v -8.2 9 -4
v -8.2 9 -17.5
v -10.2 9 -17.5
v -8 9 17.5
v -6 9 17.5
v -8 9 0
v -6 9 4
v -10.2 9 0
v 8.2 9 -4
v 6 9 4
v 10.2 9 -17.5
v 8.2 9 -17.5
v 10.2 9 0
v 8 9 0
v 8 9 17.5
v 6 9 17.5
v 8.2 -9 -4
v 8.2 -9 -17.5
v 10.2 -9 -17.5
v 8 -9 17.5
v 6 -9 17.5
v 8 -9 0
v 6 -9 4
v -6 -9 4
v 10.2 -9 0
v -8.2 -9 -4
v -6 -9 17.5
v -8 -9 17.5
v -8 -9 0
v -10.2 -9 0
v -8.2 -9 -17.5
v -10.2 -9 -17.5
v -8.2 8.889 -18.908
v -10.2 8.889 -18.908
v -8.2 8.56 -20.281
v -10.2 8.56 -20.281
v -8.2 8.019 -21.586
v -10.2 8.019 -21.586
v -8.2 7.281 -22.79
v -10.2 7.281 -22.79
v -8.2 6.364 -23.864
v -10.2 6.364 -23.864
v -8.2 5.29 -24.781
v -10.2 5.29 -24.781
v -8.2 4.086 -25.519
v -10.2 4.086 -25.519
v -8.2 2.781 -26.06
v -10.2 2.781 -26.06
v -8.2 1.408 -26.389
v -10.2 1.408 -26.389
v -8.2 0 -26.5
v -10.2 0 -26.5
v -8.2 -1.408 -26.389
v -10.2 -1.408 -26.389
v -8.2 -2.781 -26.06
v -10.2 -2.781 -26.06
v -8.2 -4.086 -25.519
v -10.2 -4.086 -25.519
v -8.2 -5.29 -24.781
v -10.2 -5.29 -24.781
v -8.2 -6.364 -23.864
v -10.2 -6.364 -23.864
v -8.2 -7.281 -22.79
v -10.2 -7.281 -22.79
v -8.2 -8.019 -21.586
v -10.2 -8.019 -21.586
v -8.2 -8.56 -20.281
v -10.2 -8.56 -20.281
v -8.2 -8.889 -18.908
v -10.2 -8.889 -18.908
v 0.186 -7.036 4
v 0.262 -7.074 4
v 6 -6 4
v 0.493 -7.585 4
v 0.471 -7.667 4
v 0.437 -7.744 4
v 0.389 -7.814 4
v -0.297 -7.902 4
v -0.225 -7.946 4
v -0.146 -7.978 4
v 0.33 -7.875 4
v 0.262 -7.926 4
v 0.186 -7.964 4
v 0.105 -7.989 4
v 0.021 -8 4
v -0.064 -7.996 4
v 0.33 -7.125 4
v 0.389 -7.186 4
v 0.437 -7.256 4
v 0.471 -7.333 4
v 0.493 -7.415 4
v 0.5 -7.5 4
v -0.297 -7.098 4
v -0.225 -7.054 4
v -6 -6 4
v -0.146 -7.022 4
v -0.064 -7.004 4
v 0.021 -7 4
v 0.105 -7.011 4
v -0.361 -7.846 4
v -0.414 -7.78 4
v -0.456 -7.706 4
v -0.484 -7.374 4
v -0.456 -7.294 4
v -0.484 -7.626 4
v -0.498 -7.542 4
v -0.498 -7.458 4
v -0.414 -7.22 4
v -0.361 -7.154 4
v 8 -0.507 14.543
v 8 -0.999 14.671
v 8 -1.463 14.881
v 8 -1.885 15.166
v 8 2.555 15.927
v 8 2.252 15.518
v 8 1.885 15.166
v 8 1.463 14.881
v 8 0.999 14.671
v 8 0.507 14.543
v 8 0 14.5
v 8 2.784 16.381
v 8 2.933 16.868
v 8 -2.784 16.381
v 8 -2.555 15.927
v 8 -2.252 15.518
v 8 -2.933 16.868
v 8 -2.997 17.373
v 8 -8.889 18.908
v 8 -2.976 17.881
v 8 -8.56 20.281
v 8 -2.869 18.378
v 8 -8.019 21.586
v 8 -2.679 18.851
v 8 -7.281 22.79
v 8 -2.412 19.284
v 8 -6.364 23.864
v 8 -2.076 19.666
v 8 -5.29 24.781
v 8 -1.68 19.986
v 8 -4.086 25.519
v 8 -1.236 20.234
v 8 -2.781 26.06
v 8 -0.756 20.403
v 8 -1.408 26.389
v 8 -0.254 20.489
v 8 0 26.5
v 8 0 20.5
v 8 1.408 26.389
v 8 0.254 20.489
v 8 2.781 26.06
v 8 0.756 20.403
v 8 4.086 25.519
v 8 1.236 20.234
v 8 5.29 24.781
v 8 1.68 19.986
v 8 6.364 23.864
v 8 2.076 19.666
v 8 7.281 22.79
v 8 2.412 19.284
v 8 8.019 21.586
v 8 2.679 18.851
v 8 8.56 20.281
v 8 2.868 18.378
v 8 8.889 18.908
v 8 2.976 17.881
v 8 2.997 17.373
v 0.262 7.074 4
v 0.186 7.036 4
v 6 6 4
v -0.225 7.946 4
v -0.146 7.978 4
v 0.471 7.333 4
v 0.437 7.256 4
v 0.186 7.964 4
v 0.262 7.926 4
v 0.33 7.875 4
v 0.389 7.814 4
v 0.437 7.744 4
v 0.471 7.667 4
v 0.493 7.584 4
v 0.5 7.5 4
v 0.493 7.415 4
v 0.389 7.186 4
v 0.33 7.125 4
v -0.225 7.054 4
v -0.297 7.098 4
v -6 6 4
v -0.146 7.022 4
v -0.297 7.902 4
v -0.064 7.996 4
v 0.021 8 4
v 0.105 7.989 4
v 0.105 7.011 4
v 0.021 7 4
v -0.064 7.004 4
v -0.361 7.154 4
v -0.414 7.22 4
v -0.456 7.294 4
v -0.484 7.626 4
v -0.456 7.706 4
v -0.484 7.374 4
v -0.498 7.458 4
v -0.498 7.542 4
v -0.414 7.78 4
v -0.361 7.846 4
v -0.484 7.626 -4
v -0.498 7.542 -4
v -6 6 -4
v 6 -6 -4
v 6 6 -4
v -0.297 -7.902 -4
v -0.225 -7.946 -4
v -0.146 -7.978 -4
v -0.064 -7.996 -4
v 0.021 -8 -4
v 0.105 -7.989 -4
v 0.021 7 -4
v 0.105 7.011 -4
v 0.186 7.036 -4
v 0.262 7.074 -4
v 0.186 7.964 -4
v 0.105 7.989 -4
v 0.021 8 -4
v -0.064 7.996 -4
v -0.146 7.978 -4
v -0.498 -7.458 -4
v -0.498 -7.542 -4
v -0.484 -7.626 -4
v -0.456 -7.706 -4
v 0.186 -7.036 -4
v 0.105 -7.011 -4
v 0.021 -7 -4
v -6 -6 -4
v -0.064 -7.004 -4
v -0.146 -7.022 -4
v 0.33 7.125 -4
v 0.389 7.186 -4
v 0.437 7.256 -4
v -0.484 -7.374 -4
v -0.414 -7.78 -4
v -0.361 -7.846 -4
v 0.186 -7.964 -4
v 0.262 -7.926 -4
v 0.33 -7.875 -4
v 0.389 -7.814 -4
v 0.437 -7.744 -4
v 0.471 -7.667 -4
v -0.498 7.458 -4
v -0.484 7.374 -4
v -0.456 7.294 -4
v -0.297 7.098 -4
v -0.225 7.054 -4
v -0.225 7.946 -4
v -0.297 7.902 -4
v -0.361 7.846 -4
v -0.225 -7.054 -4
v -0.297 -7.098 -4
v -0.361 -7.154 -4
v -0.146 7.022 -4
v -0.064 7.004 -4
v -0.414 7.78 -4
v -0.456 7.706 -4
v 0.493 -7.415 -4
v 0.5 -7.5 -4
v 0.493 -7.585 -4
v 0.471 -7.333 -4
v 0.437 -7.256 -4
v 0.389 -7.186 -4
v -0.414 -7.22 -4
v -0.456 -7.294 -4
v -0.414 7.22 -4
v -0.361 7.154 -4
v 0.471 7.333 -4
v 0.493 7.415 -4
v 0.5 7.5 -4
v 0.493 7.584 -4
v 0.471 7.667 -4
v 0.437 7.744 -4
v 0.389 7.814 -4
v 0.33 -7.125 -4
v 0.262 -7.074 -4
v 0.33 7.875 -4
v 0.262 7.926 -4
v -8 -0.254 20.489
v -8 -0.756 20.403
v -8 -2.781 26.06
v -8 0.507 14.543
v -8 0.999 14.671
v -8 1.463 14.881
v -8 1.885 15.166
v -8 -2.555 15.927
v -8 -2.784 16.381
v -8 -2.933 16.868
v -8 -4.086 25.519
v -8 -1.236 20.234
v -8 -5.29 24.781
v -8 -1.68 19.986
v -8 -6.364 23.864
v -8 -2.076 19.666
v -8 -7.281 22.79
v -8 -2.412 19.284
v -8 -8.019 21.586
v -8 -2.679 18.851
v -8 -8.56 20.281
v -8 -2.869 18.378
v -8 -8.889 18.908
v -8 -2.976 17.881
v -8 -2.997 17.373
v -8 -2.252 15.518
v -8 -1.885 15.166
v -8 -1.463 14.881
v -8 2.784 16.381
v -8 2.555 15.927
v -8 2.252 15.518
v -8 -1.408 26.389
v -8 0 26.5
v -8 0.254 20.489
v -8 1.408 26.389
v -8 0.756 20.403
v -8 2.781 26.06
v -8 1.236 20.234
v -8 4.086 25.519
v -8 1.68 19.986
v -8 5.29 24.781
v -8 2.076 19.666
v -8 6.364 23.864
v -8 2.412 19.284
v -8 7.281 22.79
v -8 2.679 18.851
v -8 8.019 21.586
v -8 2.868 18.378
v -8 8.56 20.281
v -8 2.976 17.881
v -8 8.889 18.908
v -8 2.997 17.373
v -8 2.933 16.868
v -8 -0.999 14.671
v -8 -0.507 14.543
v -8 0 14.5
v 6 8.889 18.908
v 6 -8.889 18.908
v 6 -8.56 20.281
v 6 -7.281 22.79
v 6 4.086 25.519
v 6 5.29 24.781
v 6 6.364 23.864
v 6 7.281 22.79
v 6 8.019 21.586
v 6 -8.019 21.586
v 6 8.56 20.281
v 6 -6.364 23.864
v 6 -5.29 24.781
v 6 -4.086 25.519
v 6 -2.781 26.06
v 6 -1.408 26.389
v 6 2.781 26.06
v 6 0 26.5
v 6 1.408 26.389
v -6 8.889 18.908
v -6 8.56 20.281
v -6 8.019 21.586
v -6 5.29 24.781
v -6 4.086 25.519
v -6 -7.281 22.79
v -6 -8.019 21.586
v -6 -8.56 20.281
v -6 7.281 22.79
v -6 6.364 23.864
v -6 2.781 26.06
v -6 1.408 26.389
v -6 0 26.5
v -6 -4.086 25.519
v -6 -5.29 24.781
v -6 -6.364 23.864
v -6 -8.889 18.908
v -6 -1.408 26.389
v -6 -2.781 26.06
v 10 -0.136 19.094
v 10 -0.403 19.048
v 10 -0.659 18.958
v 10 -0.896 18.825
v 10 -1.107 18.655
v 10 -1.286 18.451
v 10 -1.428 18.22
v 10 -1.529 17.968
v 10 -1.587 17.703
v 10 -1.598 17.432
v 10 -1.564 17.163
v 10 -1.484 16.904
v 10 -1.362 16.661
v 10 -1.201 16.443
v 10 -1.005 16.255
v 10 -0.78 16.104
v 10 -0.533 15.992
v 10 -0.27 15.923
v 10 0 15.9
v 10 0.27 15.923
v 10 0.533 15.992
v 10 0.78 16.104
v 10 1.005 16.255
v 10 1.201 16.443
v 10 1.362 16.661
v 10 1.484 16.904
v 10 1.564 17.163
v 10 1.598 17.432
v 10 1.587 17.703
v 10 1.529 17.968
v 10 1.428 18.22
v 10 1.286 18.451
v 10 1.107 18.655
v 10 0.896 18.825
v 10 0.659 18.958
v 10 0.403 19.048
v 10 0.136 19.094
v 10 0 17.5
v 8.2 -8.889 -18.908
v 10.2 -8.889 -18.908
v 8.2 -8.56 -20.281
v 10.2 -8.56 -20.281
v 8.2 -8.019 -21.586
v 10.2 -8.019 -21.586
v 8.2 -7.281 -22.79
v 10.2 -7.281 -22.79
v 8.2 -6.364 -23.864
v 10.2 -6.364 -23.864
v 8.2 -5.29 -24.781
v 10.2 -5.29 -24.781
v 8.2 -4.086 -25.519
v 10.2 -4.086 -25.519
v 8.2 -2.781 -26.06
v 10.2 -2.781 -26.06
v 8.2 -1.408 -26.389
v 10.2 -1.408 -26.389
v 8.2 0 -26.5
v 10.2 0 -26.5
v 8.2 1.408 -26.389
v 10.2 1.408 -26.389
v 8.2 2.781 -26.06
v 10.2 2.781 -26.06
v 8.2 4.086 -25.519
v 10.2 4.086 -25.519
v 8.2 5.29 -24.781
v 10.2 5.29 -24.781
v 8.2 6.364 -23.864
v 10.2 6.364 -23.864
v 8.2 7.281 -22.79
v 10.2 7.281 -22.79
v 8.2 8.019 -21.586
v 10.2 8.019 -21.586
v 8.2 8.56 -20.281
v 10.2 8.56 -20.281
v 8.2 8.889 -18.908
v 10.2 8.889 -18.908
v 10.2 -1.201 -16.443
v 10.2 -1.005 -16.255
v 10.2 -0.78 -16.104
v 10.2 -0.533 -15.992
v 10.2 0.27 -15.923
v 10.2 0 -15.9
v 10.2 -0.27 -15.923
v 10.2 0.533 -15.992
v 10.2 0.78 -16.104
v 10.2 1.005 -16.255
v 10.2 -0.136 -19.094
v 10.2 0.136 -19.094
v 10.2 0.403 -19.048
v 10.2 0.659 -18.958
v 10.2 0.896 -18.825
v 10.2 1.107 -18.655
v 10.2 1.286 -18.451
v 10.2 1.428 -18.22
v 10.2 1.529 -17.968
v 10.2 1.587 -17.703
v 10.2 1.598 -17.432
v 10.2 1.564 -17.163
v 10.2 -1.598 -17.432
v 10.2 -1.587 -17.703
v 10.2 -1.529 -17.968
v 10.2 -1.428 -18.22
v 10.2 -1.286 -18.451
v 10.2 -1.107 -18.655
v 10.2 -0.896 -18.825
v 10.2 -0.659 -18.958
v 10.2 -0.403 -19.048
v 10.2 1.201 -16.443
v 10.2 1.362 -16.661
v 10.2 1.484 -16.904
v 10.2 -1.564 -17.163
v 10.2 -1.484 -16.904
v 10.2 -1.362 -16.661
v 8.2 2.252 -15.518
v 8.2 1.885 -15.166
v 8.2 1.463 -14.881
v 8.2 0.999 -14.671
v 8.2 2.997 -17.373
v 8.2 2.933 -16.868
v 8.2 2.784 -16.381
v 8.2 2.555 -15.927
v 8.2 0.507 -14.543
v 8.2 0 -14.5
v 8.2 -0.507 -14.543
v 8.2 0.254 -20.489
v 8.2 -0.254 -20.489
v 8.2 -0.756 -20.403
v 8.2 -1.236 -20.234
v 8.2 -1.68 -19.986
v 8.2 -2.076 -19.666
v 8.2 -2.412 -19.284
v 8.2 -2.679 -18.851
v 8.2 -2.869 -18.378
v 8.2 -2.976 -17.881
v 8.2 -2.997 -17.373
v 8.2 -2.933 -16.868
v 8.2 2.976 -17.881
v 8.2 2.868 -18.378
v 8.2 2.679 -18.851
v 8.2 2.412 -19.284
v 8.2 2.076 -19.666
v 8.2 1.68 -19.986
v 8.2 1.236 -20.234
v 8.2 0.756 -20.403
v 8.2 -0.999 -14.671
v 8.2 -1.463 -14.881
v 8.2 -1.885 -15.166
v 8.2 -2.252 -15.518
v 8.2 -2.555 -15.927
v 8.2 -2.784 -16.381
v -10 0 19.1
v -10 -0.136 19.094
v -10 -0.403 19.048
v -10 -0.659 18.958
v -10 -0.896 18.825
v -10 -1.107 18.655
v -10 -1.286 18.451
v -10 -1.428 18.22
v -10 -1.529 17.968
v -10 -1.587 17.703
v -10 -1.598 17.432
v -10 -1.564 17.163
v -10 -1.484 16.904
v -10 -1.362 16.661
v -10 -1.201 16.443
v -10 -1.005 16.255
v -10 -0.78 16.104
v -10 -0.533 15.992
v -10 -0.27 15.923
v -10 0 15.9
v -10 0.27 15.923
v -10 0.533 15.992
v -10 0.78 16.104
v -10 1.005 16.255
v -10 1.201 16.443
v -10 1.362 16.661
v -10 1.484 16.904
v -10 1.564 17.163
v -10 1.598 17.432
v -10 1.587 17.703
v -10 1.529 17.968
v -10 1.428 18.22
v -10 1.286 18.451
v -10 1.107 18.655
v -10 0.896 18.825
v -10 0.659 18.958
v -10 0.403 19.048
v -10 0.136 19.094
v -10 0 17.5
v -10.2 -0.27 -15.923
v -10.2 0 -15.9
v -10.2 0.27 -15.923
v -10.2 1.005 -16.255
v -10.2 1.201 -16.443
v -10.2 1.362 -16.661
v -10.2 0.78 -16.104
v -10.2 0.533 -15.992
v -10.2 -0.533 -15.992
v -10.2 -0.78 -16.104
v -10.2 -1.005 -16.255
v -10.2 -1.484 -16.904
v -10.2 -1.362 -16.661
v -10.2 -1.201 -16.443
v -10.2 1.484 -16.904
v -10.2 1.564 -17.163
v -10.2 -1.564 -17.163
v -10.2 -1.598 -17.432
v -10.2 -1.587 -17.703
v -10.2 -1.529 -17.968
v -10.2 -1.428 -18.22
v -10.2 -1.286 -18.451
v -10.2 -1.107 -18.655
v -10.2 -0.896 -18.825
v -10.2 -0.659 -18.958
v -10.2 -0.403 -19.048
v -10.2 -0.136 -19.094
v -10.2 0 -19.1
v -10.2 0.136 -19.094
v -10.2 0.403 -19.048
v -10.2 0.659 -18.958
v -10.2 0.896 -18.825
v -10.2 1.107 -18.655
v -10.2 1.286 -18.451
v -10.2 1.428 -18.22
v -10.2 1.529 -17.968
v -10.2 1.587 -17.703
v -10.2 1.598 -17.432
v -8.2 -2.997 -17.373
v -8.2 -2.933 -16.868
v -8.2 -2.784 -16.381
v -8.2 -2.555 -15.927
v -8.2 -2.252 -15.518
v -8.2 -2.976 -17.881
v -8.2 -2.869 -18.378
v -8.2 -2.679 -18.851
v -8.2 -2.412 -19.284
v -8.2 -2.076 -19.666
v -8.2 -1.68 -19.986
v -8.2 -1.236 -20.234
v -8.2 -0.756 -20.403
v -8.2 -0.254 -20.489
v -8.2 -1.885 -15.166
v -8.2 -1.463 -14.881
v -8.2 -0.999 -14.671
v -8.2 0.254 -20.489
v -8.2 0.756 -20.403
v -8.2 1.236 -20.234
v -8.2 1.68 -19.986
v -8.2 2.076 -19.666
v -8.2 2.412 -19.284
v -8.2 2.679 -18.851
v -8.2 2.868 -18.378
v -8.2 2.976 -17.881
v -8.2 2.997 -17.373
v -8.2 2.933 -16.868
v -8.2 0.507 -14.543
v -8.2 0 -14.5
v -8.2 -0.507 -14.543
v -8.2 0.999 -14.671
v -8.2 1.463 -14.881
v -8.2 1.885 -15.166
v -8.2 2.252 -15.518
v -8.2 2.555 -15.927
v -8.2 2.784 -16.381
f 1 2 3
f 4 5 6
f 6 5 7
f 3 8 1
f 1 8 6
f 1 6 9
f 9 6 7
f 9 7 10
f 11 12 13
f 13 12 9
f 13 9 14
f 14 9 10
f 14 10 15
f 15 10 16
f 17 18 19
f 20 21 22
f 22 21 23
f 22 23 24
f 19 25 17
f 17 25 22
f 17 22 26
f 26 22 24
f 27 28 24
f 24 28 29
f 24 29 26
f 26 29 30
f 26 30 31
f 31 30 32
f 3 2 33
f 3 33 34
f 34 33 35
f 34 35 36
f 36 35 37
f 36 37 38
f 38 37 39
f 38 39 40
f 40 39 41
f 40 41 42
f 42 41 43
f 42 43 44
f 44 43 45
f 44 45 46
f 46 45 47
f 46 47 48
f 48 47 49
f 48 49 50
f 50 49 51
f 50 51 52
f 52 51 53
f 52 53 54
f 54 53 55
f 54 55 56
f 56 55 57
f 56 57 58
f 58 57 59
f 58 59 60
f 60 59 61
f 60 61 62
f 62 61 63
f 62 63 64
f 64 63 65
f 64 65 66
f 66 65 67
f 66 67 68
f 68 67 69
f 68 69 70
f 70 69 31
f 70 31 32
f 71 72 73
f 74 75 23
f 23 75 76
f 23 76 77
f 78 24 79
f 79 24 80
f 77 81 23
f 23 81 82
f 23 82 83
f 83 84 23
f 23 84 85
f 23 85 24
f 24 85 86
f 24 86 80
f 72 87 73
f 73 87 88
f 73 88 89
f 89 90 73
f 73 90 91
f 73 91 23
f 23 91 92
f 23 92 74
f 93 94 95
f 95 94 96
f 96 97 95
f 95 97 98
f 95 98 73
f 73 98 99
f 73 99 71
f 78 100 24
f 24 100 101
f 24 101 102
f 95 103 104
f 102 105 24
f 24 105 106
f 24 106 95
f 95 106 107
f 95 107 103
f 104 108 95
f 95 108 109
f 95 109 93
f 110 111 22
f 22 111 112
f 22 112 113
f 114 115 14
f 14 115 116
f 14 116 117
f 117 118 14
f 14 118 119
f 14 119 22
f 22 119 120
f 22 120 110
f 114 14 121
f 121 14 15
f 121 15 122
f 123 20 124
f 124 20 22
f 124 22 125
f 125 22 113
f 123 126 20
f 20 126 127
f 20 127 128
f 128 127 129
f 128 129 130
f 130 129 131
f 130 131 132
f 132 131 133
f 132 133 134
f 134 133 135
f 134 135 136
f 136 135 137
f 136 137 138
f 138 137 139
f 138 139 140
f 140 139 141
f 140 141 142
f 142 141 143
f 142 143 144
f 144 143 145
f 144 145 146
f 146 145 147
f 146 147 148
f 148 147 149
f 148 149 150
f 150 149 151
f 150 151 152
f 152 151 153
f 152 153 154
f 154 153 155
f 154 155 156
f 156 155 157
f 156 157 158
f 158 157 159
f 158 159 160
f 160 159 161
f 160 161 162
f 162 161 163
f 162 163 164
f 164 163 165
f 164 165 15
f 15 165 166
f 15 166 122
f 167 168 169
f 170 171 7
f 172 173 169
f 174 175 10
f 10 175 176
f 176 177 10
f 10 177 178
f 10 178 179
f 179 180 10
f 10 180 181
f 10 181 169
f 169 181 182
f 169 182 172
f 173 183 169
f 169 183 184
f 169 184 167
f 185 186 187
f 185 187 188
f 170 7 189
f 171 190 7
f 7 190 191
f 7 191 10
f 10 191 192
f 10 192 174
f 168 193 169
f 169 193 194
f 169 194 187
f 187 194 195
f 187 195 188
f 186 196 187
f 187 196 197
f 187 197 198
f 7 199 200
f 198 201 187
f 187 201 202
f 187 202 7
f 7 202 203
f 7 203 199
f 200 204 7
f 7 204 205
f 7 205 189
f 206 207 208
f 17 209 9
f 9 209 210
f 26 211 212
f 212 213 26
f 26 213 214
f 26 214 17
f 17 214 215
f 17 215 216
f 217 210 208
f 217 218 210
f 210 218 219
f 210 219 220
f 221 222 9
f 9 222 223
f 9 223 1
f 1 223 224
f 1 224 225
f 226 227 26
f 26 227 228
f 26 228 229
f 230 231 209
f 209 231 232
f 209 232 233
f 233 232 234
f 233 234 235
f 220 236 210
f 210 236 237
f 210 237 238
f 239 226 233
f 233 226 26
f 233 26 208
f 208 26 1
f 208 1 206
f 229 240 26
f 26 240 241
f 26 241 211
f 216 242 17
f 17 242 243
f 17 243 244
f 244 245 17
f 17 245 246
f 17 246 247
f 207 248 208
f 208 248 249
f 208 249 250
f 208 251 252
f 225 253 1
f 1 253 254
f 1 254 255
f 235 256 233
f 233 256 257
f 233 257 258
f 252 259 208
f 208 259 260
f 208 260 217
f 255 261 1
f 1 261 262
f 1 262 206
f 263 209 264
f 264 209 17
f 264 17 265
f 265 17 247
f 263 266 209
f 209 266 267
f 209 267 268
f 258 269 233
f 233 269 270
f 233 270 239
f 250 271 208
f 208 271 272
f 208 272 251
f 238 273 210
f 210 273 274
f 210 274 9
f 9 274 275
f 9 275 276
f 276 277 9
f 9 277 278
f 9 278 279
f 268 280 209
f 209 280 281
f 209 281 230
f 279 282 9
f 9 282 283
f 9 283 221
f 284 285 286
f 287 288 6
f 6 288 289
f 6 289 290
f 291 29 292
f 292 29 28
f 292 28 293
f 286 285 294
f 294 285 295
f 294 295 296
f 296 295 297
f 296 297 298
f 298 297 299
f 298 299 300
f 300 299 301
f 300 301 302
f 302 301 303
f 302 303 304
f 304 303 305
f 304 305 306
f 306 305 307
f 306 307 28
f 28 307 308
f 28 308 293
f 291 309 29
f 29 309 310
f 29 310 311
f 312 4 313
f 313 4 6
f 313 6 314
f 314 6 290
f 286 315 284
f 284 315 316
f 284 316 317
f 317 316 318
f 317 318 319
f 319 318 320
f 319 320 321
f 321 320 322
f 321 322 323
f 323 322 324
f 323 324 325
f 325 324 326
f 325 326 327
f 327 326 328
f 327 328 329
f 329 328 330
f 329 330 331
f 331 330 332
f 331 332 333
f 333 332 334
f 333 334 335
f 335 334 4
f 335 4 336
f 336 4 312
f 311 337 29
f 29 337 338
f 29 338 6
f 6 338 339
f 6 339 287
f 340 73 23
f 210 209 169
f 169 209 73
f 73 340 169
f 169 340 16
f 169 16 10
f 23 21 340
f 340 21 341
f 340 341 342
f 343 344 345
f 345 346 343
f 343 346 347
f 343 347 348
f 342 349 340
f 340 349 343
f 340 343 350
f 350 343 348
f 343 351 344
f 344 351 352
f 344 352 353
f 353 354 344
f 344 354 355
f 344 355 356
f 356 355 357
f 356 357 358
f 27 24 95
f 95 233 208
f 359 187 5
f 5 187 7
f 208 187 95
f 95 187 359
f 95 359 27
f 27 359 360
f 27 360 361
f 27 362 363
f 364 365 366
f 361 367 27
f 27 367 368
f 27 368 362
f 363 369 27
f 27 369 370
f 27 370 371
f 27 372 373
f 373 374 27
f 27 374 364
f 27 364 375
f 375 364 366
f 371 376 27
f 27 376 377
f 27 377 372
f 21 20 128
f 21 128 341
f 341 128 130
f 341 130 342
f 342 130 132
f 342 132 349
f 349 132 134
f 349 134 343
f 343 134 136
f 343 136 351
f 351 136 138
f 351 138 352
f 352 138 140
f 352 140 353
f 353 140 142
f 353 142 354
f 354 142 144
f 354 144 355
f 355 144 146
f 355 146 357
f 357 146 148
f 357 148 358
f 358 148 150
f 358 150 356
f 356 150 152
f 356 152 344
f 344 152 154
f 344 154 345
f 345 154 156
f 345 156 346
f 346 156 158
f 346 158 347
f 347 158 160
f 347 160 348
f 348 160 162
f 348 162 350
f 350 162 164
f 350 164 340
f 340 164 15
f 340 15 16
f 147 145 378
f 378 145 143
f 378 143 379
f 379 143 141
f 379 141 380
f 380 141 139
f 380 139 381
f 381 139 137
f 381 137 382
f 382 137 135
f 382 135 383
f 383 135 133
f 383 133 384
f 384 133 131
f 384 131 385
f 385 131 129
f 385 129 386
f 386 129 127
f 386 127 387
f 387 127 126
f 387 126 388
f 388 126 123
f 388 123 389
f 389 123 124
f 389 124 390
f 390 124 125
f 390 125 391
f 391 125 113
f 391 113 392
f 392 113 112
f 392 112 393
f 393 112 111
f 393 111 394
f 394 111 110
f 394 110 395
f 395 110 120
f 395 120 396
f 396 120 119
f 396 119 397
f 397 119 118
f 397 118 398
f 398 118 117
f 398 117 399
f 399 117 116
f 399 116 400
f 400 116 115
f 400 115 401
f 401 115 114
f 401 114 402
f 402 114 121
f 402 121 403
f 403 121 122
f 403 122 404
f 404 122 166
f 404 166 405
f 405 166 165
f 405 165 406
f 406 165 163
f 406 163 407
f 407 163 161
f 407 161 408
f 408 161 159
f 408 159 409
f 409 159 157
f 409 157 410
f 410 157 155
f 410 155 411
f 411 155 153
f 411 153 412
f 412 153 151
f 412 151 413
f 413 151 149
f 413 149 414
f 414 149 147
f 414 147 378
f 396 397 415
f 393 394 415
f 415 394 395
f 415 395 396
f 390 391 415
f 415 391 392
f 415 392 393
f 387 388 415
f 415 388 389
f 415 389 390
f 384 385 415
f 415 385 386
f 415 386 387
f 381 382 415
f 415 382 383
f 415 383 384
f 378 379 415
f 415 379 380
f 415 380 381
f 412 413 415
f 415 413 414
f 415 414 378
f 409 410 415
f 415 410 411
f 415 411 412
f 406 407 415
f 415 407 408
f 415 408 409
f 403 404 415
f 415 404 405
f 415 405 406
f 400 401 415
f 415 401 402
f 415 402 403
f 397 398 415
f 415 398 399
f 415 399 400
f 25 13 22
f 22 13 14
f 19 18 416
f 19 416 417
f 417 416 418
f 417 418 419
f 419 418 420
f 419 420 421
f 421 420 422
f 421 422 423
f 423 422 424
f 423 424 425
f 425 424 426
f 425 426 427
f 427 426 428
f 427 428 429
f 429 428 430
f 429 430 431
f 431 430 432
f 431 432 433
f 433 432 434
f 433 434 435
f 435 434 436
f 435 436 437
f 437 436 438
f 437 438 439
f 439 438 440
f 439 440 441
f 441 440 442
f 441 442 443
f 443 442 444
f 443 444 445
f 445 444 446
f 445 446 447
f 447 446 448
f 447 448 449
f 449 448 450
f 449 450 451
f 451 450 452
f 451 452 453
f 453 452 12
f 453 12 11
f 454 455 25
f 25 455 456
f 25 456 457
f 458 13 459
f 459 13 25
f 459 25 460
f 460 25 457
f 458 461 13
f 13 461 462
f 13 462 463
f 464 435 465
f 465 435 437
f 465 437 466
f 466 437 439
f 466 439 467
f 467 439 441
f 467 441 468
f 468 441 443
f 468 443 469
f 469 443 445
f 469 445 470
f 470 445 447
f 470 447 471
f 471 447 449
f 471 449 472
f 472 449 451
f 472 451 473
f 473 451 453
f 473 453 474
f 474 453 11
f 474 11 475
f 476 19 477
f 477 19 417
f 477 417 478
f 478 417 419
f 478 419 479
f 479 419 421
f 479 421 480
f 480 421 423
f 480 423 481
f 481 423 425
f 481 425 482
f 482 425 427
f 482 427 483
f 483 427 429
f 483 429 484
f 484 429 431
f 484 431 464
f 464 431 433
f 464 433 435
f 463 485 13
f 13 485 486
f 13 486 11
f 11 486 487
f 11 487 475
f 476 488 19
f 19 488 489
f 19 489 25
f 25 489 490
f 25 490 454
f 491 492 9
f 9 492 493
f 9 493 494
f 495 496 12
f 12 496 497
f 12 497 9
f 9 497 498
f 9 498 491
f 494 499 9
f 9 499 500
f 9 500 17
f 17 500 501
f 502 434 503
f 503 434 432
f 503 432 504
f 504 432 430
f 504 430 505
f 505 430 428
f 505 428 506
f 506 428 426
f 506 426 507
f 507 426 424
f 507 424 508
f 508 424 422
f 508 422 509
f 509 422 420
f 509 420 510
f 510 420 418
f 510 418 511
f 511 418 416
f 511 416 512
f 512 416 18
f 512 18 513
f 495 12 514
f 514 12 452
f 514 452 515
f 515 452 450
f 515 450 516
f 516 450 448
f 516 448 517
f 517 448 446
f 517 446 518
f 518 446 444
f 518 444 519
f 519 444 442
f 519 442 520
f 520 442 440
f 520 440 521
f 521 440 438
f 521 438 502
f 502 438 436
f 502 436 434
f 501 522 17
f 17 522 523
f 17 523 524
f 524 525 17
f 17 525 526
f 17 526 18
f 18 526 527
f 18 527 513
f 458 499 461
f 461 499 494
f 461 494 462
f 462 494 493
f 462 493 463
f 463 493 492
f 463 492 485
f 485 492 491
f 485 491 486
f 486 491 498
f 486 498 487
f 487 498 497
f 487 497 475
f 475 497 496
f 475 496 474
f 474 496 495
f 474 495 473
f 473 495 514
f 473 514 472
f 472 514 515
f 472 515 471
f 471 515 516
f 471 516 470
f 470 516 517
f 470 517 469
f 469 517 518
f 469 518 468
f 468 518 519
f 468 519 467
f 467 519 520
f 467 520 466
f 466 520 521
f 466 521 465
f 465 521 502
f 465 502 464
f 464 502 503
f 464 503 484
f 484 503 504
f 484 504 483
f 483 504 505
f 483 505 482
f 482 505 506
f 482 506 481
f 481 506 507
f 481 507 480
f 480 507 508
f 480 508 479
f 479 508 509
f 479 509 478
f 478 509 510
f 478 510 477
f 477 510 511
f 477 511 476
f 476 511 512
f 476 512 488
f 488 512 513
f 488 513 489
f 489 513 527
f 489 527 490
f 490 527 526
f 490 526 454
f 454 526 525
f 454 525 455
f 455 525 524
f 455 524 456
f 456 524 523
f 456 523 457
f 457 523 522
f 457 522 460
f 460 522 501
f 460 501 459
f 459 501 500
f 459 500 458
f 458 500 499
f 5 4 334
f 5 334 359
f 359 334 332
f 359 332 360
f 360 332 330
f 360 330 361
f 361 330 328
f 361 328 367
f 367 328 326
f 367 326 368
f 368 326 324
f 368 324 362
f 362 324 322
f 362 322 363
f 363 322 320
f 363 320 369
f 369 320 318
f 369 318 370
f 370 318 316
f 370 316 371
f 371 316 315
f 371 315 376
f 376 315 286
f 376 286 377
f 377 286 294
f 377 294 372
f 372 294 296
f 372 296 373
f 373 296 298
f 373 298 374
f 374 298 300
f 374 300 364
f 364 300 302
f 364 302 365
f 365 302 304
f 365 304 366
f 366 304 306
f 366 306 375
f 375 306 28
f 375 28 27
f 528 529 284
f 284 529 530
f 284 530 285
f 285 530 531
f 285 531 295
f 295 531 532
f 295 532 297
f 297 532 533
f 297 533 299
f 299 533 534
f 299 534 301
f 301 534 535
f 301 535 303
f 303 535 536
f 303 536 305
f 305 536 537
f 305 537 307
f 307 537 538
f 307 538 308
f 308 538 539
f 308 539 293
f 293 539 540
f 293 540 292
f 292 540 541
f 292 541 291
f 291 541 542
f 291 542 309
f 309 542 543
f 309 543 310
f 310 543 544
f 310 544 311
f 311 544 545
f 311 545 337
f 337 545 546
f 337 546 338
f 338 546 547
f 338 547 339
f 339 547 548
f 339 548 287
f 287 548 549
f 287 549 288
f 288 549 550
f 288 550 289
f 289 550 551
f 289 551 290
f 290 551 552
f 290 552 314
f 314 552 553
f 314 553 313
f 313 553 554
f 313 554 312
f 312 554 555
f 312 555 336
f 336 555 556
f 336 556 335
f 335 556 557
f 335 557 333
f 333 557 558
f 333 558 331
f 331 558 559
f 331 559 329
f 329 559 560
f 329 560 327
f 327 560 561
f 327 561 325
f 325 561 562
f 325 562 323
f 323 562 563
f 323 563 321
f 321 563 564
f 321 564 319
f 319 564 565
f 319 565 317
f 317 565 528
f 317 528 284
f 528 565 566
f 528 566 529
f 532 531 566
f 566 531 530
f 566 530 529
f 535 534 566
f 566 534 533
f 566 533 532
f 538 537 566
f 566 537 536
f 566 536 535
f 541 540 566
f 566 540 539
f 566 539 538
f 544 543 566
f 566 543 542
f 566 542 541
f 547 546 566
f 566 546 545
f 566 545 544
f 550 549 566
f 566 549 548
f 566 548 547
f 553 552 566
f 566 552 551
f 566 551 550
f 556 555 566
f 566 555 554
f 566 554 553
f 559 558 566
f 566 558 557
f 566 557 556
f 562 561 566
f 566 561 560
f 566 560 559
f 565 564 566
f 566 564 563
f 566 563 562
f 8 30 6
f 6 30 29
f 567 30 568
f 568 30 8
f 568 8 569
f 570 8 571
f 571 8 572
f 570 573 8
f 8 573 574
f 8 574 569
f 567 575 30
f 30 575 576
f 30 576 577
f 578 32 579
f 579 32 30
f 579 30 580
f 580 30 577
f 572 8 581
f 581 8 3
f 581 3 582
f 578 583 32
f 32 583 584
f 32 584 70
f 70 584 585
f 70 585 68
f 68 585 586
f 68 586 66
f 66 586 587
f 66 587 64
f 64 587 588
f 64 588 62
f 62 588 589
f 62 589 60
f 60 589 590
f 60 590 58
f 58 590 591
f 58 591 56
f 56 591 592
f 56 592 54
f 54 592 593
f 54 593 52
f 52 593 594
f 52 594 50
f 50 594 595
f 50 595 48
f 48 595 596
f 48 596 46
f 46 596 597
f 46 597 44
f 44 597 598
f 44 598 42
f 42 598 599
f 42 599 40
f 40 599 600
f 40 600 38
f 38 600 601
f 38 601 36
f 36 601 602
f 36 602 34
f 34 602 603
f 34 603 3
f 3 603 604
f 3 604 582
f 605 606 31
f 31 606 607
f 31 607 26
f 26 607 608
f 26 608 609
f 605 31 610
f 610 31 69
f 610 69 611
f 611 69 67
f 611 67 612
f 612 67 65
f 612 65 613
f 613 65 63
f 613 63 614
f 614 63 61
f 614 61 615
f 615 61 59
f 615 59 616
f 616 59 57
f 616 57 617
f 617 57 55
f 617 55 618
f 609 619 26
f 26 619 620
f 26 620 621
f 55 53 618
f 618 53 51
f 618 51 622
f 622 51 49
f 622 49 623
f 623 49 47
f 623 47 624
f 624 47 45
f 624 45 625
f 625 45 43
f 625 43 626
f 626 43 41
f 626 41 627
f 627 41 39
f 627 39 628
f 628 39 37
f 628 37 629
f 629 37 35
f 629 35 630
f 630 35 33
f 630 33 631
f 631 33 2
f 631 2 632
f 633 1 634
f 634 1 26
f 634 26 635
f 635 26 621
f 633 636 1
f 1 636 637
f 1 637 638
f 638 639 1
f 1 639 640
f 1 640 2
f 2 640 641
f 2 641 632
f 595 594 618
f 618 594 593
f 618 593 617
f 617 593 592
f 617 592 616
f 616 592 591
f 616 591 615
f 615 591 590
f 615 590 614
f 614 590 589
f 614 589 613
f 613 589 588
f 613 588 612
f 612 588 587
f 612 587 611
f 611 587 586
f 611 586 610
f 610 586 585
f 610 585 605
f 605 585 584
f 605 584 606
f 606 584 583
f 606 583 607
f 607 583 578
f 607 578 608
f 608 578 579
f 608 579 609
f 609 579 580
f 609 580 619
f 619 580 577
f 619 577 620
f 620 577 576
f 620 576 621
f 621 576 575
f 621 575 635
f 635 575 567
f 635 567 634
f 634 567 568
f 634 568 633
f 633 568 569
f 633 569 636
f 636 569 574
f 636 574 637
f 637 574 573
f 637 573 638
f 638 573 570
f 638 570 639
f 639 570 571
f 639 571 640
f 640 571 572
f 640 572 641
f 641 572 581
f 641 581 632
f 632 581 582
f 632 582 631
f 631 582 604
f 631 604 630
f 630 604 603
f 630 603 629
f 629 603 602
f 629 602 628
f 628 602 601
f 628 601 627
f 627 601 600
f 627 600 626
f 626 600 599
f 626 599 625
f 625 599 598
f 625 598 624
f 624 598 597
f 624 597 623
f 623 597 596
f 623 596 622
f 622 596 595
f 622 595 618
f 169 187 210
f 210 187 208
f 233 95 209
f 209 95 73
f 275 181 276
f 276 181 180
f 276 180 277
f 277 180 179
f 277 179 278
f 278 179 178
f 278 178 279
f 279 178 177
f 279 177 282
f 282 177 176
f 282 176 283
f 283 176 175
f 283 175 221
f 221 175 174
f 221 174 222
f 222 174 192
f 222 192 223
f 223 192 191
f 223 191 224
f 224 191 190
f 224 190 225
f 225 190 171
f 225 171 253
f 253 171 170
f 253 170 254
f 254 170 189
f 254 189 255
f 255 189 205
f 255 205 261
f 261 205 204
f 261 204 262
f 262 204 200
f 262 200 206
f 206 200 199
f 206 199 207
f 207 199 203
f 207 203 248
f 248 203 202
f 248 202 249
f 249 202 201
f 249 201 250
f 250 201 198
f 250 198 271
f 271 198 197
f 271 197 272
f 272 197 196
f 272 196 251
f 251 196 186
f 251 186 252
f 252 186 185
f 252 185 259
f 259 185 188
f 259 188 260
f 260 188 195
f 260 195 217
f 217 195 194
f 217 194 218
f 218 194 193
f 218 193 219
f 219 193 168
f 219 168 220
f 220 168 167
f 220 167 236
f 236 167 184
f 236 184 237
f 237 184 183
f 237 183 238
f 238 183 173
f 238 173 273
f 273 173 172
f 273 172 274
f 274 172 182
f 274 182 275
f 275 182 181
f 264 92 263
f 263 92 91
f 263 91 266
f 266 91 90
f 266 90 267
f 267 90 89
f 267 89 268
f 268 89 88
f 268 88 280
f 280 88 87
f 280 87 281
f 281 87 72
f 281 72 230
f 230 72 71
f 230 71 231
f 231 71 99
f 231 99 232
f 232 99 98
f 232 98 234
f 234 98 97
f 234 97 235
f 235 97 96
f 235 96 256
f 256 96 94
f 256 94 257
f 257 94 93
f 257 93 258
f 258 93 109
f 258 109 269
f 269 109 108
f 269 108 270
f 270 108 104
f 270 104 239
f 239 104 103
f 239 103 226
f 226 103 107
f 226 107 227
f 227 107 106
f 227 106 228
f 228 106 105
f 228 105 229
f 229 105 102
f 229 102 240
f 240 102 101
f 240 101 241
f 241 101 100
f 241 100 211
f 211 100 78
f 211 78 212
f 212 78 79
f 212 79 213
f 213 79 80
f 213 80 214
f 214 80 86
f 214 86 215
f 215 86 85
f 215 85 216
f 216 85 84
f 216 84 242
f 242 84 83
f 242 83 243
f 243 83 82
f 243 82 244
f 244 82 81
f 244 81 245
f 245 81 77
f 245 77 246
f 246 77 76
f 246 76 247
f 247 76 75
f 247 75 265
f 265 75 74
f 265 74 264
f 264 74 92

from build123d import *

# Parameters (mm, degrees)
SKETCH1_W               = 16
SKETCH1_H               = 18
SKETCH1_W_2             = 12
SKETCH1_H_2             = 14
EXTRUDE_THIN1_DEPTH     = 4
BOSS_EXTRUDE1_DEPTH     = 2
SKETCH3_R               = 3
BOSS_EXTRUDE2_DEPTH     = 2
BOSS_EXTRUDE2_TAPER     = 35
BOSS_EXTRUDE3_DEPTH     = 2.2
CUT_EXTRUDE4_REACH      = 35.62
SKETCH10_W              = 0.2
SKETCH10_H              = 25.531461486
SKETCH5_R               = 3
CUT_EXTRUDE1_DEPTH      = 2
CUT_EXTRUDE1_DRAFT      = -35
MIRROR3_COPY_1_SKETCH_R = 3
MIRROR3_COPY_1_DEPTH    = 2
MIRROR3_COPY_1_DRAFT    = -35
SKETCH13_W              = 12
SKETCH13_H              = 1
BOSS_EXTRUDE4_DEPTH     = 8
CUT_EXTRUDE5_REACH      = 35.396
SKETCH11_R              = 0.5


with BuildPart() as part:
    # Sketch1 → Extrude-Thin1 (new, symmetric)
    with BuildSketch(Plane.XY):
        Rectangle(SKETCH1_W, SKETCH1_H)
        Rectangle(SKETCH1_W_2, SKETCH1_H_2, mode=Mode.SUBTRACT)
    extrude_thin1 = extrude(amount=EXTRUDE_THIN1_DEPTH, both=True)

    # Sketch2 → Boss-Extrude1 (add)
    with BuildSketch(Plane(origin=(8, 0, 0), x_dir=(0, 0, -1), z_dir=(1, 0, 0))):
        with BuildLine():
            Line((0, 9), (-17.5, 9))
            ThreePointArc((-17.5, 9), (-26.5, 0), (-17.5, -9))
            Line((-17.5, -9), (0, -9))
            Line((0, -9), (0, 9))
        make_face()
    boss_extrude1 = extrude(amount=-BOSS_EXTRUDE1_DEPTH)

    # Sketch3 → Boss-Extrude2 (add)
    with BuildSketch(Plane(origin=(8, 0, 0), x_dir=(0, 0, -1), z_dir=(1, 0, 0))):
        with Locations((-17.5, 0)):
            Circle(SKETCH3_R)
    boss_extrude2 = extrude(amount=BOSS_EXTRUDE2_DEPTH, taper=BOSS_EXTRUDE2_TAPER)

    # Sketch4 → Boss-Extrude3 (add)
    with BuildSketch(Plane(origin=(8, 0, 0), x_dir=(0, 0, -1), z_dir=(1, 0, 0))):
        with BuildLine():
            Line((0, 9), (17.5, 9))
            ThreePointArc((17.5, 9), (26.5, 0), (17.5, -9))
            Line((17.5, -9), (0, -9))
            Line((0, -9), (0, 9))
        make_face()
    boss_extrude3 = extrude(amount=BOSS_EXTRUDE3_DEPTH)

    # Sketch10 → Cut-Extrude4 (cut, up to next)
    with BuildSketch(Plane(origin=(0, 9, 0), x_dir=(1, 0, 0), z_dir=(0, 1, 0)), mode=Mode.PRIVATE) as cut_extrude4_sk1:
        with Locations((8.1, 16.765730743)):
            Rectangle(SKETCH10_W, SKETCH10_H)
    cut_extrude4_tool1 = extrude(cut_extrude4_sk1.sketch, amount=-CUT_EXTRUDE4_REACH, mode=Mode.PRIVATE) & part.part
    cut_extrude4 = cut_extrude4_tool1.solids().sort_by_distance((8.1, 9, -16.765731))[0]
    add(cut_extrude4, mode=Mode.SUBTRACT)


with BuildPart() as cut_extrude1_tool:
    # Sketch5 → Cut-Extrude1 (with draft: the straight prism first)
    with BuildSketch(Plane.ZY.offset(-8.2)):
        with Locations((-17.5, 0)):
            Circle(SKETCH5_R)
    extrude(amount=-CUT_EXTRUDE1_DEPTH)
    # Cut-Extrude1: the draft: its side faces are tilted about the plane it starts from
    cut_extrude1_sides = [cut_extrude1_tool.faces().sort_by_distance(p)[0] for p in [
        (9.2, 0, -20.5),
    ]]
    draft(cut_extrude1_sides, Plane.ZY.offset(-8.2), CUT_EXTRUDE1_DRAFT)


with BuildPart() as part_1:
    add(part.part)

    # Cut-Extrude1: cut by cut_extrude1_tool
    add(cut_extrude1_tool.part, mode=Mode.SUBTRACT)

    # Mirror3: Extrude-Thin1, Boss-Extrude1, Boss-Extrude2, Boss-Extrude3, Cut-Extrude4 across plane
    add(extrude_thin1.mirror(Plane(origin=(0, 0, 0), x_dir=(0, 0, 1), z_dir=(1, 0, 0))))
    add(boss_extrude1.mirror(Plane(origin=(0, 0, 0), x_dir=(0, 0, 1), z_dir=(1, 0, 0))))
    add(boss_extrude2.mirror(Plane(origin=(0, 0, 0), x_dir=(0, 0, 1), z_dir=(1, 0, 0))))
    add(boss_extrude3.mirror(Plane(origin=(0, 0, 0), x_dir=(0, 0, 1), z_dir=(1, 0, 0))))
    add(cut_extrude4.mirror(Plane(origin=(0, 0, 0), x_dir=(0, 0, 1), z_dir=(1, 0, 0))), mode=Mode.SUBTRACT)


with BuildPart() as mirror3_copy_1_tool:
    # Mirror3 copy 1 sketch → Mirror3 copy 1 (with draft: the straight prism first)
    with BuildSketch(Plane(origin=(-8.2, 0, 0), x_dir=(0, 0, 1), z_dir=(1, 0, 0))):
        with Locations((-17.5, 0)):
            Circle(MIRROR3_COPY_1_SKETCH_R)
    extrude(amount=-MIRROR3_COPY_1_DEPTH)
    # Mirror3 copy 1: the draft: its side faces are tilted about the plane it starts from
    mirror3_copy_1_sides = [mirror3_copy_1_tool.faces().sort_by_distance(p)[0] for p in [
        (-9.2, 0, -20.5),
    ]]
    draft(mirror3_copy_1_sides, Plane(origin=(-8.2, 0, 0), x_dir=(0, 0, 1), z_dir=(1, 0, 0)), MIRROR3_COPY_1_DRAFT)


with BuildPart() as part_2:
    add(part_1.part)

    # Mirror3 copy 1: cut by mirror3_copy_1_tool
    add(mirror3_copy_1_tool.part, mode=Mode.SUBTRACT)

    # Sketch13 → Boss-Extrude4 (add)
    with BuildSketch(Plane.XY.offset(4)):
        with Locations((0, 6.5)):
            Rectangle(SKETCH13_W, SKETCH13_H)
    boss_extrude4 = extrude(amount=-BOSS_EXTRUDE4_DEPTH)

    # Mirror5: Boss-Extrude4 across plane
    add(boss_extrude4.mirror(Plane.ZX))

    # Sketch11 → Cut-Extrude5 (cut, up to next)
    with BuildSketch(Plane.XY.offset(4), mode=Mode.PRIVATE) as cut_extrude5_sk1:
        with Locations((0, 7.5)):
            Circle(SKETCH11_R)
    cut_extrude5_tool1 = extrude(cut_extrude5_sk1.sketch, amount=-CUT_EXTRUDE5_REACH, mode=Mode.PRIVATE) & part_2.part
    cut_extrude5 = cut_extrude5_tool1.solids().sort_by_distance((0, 7.5, 4))[0]
    add(cut_extrude5, mode=Mode.SUBTRACT)

    # Mirror4: Cut-Extrude5 across plane
    add(cut_extrude5.mirror(Plane.ZX), mode=Mode.SUBTRACT)


solid = part_2.part
